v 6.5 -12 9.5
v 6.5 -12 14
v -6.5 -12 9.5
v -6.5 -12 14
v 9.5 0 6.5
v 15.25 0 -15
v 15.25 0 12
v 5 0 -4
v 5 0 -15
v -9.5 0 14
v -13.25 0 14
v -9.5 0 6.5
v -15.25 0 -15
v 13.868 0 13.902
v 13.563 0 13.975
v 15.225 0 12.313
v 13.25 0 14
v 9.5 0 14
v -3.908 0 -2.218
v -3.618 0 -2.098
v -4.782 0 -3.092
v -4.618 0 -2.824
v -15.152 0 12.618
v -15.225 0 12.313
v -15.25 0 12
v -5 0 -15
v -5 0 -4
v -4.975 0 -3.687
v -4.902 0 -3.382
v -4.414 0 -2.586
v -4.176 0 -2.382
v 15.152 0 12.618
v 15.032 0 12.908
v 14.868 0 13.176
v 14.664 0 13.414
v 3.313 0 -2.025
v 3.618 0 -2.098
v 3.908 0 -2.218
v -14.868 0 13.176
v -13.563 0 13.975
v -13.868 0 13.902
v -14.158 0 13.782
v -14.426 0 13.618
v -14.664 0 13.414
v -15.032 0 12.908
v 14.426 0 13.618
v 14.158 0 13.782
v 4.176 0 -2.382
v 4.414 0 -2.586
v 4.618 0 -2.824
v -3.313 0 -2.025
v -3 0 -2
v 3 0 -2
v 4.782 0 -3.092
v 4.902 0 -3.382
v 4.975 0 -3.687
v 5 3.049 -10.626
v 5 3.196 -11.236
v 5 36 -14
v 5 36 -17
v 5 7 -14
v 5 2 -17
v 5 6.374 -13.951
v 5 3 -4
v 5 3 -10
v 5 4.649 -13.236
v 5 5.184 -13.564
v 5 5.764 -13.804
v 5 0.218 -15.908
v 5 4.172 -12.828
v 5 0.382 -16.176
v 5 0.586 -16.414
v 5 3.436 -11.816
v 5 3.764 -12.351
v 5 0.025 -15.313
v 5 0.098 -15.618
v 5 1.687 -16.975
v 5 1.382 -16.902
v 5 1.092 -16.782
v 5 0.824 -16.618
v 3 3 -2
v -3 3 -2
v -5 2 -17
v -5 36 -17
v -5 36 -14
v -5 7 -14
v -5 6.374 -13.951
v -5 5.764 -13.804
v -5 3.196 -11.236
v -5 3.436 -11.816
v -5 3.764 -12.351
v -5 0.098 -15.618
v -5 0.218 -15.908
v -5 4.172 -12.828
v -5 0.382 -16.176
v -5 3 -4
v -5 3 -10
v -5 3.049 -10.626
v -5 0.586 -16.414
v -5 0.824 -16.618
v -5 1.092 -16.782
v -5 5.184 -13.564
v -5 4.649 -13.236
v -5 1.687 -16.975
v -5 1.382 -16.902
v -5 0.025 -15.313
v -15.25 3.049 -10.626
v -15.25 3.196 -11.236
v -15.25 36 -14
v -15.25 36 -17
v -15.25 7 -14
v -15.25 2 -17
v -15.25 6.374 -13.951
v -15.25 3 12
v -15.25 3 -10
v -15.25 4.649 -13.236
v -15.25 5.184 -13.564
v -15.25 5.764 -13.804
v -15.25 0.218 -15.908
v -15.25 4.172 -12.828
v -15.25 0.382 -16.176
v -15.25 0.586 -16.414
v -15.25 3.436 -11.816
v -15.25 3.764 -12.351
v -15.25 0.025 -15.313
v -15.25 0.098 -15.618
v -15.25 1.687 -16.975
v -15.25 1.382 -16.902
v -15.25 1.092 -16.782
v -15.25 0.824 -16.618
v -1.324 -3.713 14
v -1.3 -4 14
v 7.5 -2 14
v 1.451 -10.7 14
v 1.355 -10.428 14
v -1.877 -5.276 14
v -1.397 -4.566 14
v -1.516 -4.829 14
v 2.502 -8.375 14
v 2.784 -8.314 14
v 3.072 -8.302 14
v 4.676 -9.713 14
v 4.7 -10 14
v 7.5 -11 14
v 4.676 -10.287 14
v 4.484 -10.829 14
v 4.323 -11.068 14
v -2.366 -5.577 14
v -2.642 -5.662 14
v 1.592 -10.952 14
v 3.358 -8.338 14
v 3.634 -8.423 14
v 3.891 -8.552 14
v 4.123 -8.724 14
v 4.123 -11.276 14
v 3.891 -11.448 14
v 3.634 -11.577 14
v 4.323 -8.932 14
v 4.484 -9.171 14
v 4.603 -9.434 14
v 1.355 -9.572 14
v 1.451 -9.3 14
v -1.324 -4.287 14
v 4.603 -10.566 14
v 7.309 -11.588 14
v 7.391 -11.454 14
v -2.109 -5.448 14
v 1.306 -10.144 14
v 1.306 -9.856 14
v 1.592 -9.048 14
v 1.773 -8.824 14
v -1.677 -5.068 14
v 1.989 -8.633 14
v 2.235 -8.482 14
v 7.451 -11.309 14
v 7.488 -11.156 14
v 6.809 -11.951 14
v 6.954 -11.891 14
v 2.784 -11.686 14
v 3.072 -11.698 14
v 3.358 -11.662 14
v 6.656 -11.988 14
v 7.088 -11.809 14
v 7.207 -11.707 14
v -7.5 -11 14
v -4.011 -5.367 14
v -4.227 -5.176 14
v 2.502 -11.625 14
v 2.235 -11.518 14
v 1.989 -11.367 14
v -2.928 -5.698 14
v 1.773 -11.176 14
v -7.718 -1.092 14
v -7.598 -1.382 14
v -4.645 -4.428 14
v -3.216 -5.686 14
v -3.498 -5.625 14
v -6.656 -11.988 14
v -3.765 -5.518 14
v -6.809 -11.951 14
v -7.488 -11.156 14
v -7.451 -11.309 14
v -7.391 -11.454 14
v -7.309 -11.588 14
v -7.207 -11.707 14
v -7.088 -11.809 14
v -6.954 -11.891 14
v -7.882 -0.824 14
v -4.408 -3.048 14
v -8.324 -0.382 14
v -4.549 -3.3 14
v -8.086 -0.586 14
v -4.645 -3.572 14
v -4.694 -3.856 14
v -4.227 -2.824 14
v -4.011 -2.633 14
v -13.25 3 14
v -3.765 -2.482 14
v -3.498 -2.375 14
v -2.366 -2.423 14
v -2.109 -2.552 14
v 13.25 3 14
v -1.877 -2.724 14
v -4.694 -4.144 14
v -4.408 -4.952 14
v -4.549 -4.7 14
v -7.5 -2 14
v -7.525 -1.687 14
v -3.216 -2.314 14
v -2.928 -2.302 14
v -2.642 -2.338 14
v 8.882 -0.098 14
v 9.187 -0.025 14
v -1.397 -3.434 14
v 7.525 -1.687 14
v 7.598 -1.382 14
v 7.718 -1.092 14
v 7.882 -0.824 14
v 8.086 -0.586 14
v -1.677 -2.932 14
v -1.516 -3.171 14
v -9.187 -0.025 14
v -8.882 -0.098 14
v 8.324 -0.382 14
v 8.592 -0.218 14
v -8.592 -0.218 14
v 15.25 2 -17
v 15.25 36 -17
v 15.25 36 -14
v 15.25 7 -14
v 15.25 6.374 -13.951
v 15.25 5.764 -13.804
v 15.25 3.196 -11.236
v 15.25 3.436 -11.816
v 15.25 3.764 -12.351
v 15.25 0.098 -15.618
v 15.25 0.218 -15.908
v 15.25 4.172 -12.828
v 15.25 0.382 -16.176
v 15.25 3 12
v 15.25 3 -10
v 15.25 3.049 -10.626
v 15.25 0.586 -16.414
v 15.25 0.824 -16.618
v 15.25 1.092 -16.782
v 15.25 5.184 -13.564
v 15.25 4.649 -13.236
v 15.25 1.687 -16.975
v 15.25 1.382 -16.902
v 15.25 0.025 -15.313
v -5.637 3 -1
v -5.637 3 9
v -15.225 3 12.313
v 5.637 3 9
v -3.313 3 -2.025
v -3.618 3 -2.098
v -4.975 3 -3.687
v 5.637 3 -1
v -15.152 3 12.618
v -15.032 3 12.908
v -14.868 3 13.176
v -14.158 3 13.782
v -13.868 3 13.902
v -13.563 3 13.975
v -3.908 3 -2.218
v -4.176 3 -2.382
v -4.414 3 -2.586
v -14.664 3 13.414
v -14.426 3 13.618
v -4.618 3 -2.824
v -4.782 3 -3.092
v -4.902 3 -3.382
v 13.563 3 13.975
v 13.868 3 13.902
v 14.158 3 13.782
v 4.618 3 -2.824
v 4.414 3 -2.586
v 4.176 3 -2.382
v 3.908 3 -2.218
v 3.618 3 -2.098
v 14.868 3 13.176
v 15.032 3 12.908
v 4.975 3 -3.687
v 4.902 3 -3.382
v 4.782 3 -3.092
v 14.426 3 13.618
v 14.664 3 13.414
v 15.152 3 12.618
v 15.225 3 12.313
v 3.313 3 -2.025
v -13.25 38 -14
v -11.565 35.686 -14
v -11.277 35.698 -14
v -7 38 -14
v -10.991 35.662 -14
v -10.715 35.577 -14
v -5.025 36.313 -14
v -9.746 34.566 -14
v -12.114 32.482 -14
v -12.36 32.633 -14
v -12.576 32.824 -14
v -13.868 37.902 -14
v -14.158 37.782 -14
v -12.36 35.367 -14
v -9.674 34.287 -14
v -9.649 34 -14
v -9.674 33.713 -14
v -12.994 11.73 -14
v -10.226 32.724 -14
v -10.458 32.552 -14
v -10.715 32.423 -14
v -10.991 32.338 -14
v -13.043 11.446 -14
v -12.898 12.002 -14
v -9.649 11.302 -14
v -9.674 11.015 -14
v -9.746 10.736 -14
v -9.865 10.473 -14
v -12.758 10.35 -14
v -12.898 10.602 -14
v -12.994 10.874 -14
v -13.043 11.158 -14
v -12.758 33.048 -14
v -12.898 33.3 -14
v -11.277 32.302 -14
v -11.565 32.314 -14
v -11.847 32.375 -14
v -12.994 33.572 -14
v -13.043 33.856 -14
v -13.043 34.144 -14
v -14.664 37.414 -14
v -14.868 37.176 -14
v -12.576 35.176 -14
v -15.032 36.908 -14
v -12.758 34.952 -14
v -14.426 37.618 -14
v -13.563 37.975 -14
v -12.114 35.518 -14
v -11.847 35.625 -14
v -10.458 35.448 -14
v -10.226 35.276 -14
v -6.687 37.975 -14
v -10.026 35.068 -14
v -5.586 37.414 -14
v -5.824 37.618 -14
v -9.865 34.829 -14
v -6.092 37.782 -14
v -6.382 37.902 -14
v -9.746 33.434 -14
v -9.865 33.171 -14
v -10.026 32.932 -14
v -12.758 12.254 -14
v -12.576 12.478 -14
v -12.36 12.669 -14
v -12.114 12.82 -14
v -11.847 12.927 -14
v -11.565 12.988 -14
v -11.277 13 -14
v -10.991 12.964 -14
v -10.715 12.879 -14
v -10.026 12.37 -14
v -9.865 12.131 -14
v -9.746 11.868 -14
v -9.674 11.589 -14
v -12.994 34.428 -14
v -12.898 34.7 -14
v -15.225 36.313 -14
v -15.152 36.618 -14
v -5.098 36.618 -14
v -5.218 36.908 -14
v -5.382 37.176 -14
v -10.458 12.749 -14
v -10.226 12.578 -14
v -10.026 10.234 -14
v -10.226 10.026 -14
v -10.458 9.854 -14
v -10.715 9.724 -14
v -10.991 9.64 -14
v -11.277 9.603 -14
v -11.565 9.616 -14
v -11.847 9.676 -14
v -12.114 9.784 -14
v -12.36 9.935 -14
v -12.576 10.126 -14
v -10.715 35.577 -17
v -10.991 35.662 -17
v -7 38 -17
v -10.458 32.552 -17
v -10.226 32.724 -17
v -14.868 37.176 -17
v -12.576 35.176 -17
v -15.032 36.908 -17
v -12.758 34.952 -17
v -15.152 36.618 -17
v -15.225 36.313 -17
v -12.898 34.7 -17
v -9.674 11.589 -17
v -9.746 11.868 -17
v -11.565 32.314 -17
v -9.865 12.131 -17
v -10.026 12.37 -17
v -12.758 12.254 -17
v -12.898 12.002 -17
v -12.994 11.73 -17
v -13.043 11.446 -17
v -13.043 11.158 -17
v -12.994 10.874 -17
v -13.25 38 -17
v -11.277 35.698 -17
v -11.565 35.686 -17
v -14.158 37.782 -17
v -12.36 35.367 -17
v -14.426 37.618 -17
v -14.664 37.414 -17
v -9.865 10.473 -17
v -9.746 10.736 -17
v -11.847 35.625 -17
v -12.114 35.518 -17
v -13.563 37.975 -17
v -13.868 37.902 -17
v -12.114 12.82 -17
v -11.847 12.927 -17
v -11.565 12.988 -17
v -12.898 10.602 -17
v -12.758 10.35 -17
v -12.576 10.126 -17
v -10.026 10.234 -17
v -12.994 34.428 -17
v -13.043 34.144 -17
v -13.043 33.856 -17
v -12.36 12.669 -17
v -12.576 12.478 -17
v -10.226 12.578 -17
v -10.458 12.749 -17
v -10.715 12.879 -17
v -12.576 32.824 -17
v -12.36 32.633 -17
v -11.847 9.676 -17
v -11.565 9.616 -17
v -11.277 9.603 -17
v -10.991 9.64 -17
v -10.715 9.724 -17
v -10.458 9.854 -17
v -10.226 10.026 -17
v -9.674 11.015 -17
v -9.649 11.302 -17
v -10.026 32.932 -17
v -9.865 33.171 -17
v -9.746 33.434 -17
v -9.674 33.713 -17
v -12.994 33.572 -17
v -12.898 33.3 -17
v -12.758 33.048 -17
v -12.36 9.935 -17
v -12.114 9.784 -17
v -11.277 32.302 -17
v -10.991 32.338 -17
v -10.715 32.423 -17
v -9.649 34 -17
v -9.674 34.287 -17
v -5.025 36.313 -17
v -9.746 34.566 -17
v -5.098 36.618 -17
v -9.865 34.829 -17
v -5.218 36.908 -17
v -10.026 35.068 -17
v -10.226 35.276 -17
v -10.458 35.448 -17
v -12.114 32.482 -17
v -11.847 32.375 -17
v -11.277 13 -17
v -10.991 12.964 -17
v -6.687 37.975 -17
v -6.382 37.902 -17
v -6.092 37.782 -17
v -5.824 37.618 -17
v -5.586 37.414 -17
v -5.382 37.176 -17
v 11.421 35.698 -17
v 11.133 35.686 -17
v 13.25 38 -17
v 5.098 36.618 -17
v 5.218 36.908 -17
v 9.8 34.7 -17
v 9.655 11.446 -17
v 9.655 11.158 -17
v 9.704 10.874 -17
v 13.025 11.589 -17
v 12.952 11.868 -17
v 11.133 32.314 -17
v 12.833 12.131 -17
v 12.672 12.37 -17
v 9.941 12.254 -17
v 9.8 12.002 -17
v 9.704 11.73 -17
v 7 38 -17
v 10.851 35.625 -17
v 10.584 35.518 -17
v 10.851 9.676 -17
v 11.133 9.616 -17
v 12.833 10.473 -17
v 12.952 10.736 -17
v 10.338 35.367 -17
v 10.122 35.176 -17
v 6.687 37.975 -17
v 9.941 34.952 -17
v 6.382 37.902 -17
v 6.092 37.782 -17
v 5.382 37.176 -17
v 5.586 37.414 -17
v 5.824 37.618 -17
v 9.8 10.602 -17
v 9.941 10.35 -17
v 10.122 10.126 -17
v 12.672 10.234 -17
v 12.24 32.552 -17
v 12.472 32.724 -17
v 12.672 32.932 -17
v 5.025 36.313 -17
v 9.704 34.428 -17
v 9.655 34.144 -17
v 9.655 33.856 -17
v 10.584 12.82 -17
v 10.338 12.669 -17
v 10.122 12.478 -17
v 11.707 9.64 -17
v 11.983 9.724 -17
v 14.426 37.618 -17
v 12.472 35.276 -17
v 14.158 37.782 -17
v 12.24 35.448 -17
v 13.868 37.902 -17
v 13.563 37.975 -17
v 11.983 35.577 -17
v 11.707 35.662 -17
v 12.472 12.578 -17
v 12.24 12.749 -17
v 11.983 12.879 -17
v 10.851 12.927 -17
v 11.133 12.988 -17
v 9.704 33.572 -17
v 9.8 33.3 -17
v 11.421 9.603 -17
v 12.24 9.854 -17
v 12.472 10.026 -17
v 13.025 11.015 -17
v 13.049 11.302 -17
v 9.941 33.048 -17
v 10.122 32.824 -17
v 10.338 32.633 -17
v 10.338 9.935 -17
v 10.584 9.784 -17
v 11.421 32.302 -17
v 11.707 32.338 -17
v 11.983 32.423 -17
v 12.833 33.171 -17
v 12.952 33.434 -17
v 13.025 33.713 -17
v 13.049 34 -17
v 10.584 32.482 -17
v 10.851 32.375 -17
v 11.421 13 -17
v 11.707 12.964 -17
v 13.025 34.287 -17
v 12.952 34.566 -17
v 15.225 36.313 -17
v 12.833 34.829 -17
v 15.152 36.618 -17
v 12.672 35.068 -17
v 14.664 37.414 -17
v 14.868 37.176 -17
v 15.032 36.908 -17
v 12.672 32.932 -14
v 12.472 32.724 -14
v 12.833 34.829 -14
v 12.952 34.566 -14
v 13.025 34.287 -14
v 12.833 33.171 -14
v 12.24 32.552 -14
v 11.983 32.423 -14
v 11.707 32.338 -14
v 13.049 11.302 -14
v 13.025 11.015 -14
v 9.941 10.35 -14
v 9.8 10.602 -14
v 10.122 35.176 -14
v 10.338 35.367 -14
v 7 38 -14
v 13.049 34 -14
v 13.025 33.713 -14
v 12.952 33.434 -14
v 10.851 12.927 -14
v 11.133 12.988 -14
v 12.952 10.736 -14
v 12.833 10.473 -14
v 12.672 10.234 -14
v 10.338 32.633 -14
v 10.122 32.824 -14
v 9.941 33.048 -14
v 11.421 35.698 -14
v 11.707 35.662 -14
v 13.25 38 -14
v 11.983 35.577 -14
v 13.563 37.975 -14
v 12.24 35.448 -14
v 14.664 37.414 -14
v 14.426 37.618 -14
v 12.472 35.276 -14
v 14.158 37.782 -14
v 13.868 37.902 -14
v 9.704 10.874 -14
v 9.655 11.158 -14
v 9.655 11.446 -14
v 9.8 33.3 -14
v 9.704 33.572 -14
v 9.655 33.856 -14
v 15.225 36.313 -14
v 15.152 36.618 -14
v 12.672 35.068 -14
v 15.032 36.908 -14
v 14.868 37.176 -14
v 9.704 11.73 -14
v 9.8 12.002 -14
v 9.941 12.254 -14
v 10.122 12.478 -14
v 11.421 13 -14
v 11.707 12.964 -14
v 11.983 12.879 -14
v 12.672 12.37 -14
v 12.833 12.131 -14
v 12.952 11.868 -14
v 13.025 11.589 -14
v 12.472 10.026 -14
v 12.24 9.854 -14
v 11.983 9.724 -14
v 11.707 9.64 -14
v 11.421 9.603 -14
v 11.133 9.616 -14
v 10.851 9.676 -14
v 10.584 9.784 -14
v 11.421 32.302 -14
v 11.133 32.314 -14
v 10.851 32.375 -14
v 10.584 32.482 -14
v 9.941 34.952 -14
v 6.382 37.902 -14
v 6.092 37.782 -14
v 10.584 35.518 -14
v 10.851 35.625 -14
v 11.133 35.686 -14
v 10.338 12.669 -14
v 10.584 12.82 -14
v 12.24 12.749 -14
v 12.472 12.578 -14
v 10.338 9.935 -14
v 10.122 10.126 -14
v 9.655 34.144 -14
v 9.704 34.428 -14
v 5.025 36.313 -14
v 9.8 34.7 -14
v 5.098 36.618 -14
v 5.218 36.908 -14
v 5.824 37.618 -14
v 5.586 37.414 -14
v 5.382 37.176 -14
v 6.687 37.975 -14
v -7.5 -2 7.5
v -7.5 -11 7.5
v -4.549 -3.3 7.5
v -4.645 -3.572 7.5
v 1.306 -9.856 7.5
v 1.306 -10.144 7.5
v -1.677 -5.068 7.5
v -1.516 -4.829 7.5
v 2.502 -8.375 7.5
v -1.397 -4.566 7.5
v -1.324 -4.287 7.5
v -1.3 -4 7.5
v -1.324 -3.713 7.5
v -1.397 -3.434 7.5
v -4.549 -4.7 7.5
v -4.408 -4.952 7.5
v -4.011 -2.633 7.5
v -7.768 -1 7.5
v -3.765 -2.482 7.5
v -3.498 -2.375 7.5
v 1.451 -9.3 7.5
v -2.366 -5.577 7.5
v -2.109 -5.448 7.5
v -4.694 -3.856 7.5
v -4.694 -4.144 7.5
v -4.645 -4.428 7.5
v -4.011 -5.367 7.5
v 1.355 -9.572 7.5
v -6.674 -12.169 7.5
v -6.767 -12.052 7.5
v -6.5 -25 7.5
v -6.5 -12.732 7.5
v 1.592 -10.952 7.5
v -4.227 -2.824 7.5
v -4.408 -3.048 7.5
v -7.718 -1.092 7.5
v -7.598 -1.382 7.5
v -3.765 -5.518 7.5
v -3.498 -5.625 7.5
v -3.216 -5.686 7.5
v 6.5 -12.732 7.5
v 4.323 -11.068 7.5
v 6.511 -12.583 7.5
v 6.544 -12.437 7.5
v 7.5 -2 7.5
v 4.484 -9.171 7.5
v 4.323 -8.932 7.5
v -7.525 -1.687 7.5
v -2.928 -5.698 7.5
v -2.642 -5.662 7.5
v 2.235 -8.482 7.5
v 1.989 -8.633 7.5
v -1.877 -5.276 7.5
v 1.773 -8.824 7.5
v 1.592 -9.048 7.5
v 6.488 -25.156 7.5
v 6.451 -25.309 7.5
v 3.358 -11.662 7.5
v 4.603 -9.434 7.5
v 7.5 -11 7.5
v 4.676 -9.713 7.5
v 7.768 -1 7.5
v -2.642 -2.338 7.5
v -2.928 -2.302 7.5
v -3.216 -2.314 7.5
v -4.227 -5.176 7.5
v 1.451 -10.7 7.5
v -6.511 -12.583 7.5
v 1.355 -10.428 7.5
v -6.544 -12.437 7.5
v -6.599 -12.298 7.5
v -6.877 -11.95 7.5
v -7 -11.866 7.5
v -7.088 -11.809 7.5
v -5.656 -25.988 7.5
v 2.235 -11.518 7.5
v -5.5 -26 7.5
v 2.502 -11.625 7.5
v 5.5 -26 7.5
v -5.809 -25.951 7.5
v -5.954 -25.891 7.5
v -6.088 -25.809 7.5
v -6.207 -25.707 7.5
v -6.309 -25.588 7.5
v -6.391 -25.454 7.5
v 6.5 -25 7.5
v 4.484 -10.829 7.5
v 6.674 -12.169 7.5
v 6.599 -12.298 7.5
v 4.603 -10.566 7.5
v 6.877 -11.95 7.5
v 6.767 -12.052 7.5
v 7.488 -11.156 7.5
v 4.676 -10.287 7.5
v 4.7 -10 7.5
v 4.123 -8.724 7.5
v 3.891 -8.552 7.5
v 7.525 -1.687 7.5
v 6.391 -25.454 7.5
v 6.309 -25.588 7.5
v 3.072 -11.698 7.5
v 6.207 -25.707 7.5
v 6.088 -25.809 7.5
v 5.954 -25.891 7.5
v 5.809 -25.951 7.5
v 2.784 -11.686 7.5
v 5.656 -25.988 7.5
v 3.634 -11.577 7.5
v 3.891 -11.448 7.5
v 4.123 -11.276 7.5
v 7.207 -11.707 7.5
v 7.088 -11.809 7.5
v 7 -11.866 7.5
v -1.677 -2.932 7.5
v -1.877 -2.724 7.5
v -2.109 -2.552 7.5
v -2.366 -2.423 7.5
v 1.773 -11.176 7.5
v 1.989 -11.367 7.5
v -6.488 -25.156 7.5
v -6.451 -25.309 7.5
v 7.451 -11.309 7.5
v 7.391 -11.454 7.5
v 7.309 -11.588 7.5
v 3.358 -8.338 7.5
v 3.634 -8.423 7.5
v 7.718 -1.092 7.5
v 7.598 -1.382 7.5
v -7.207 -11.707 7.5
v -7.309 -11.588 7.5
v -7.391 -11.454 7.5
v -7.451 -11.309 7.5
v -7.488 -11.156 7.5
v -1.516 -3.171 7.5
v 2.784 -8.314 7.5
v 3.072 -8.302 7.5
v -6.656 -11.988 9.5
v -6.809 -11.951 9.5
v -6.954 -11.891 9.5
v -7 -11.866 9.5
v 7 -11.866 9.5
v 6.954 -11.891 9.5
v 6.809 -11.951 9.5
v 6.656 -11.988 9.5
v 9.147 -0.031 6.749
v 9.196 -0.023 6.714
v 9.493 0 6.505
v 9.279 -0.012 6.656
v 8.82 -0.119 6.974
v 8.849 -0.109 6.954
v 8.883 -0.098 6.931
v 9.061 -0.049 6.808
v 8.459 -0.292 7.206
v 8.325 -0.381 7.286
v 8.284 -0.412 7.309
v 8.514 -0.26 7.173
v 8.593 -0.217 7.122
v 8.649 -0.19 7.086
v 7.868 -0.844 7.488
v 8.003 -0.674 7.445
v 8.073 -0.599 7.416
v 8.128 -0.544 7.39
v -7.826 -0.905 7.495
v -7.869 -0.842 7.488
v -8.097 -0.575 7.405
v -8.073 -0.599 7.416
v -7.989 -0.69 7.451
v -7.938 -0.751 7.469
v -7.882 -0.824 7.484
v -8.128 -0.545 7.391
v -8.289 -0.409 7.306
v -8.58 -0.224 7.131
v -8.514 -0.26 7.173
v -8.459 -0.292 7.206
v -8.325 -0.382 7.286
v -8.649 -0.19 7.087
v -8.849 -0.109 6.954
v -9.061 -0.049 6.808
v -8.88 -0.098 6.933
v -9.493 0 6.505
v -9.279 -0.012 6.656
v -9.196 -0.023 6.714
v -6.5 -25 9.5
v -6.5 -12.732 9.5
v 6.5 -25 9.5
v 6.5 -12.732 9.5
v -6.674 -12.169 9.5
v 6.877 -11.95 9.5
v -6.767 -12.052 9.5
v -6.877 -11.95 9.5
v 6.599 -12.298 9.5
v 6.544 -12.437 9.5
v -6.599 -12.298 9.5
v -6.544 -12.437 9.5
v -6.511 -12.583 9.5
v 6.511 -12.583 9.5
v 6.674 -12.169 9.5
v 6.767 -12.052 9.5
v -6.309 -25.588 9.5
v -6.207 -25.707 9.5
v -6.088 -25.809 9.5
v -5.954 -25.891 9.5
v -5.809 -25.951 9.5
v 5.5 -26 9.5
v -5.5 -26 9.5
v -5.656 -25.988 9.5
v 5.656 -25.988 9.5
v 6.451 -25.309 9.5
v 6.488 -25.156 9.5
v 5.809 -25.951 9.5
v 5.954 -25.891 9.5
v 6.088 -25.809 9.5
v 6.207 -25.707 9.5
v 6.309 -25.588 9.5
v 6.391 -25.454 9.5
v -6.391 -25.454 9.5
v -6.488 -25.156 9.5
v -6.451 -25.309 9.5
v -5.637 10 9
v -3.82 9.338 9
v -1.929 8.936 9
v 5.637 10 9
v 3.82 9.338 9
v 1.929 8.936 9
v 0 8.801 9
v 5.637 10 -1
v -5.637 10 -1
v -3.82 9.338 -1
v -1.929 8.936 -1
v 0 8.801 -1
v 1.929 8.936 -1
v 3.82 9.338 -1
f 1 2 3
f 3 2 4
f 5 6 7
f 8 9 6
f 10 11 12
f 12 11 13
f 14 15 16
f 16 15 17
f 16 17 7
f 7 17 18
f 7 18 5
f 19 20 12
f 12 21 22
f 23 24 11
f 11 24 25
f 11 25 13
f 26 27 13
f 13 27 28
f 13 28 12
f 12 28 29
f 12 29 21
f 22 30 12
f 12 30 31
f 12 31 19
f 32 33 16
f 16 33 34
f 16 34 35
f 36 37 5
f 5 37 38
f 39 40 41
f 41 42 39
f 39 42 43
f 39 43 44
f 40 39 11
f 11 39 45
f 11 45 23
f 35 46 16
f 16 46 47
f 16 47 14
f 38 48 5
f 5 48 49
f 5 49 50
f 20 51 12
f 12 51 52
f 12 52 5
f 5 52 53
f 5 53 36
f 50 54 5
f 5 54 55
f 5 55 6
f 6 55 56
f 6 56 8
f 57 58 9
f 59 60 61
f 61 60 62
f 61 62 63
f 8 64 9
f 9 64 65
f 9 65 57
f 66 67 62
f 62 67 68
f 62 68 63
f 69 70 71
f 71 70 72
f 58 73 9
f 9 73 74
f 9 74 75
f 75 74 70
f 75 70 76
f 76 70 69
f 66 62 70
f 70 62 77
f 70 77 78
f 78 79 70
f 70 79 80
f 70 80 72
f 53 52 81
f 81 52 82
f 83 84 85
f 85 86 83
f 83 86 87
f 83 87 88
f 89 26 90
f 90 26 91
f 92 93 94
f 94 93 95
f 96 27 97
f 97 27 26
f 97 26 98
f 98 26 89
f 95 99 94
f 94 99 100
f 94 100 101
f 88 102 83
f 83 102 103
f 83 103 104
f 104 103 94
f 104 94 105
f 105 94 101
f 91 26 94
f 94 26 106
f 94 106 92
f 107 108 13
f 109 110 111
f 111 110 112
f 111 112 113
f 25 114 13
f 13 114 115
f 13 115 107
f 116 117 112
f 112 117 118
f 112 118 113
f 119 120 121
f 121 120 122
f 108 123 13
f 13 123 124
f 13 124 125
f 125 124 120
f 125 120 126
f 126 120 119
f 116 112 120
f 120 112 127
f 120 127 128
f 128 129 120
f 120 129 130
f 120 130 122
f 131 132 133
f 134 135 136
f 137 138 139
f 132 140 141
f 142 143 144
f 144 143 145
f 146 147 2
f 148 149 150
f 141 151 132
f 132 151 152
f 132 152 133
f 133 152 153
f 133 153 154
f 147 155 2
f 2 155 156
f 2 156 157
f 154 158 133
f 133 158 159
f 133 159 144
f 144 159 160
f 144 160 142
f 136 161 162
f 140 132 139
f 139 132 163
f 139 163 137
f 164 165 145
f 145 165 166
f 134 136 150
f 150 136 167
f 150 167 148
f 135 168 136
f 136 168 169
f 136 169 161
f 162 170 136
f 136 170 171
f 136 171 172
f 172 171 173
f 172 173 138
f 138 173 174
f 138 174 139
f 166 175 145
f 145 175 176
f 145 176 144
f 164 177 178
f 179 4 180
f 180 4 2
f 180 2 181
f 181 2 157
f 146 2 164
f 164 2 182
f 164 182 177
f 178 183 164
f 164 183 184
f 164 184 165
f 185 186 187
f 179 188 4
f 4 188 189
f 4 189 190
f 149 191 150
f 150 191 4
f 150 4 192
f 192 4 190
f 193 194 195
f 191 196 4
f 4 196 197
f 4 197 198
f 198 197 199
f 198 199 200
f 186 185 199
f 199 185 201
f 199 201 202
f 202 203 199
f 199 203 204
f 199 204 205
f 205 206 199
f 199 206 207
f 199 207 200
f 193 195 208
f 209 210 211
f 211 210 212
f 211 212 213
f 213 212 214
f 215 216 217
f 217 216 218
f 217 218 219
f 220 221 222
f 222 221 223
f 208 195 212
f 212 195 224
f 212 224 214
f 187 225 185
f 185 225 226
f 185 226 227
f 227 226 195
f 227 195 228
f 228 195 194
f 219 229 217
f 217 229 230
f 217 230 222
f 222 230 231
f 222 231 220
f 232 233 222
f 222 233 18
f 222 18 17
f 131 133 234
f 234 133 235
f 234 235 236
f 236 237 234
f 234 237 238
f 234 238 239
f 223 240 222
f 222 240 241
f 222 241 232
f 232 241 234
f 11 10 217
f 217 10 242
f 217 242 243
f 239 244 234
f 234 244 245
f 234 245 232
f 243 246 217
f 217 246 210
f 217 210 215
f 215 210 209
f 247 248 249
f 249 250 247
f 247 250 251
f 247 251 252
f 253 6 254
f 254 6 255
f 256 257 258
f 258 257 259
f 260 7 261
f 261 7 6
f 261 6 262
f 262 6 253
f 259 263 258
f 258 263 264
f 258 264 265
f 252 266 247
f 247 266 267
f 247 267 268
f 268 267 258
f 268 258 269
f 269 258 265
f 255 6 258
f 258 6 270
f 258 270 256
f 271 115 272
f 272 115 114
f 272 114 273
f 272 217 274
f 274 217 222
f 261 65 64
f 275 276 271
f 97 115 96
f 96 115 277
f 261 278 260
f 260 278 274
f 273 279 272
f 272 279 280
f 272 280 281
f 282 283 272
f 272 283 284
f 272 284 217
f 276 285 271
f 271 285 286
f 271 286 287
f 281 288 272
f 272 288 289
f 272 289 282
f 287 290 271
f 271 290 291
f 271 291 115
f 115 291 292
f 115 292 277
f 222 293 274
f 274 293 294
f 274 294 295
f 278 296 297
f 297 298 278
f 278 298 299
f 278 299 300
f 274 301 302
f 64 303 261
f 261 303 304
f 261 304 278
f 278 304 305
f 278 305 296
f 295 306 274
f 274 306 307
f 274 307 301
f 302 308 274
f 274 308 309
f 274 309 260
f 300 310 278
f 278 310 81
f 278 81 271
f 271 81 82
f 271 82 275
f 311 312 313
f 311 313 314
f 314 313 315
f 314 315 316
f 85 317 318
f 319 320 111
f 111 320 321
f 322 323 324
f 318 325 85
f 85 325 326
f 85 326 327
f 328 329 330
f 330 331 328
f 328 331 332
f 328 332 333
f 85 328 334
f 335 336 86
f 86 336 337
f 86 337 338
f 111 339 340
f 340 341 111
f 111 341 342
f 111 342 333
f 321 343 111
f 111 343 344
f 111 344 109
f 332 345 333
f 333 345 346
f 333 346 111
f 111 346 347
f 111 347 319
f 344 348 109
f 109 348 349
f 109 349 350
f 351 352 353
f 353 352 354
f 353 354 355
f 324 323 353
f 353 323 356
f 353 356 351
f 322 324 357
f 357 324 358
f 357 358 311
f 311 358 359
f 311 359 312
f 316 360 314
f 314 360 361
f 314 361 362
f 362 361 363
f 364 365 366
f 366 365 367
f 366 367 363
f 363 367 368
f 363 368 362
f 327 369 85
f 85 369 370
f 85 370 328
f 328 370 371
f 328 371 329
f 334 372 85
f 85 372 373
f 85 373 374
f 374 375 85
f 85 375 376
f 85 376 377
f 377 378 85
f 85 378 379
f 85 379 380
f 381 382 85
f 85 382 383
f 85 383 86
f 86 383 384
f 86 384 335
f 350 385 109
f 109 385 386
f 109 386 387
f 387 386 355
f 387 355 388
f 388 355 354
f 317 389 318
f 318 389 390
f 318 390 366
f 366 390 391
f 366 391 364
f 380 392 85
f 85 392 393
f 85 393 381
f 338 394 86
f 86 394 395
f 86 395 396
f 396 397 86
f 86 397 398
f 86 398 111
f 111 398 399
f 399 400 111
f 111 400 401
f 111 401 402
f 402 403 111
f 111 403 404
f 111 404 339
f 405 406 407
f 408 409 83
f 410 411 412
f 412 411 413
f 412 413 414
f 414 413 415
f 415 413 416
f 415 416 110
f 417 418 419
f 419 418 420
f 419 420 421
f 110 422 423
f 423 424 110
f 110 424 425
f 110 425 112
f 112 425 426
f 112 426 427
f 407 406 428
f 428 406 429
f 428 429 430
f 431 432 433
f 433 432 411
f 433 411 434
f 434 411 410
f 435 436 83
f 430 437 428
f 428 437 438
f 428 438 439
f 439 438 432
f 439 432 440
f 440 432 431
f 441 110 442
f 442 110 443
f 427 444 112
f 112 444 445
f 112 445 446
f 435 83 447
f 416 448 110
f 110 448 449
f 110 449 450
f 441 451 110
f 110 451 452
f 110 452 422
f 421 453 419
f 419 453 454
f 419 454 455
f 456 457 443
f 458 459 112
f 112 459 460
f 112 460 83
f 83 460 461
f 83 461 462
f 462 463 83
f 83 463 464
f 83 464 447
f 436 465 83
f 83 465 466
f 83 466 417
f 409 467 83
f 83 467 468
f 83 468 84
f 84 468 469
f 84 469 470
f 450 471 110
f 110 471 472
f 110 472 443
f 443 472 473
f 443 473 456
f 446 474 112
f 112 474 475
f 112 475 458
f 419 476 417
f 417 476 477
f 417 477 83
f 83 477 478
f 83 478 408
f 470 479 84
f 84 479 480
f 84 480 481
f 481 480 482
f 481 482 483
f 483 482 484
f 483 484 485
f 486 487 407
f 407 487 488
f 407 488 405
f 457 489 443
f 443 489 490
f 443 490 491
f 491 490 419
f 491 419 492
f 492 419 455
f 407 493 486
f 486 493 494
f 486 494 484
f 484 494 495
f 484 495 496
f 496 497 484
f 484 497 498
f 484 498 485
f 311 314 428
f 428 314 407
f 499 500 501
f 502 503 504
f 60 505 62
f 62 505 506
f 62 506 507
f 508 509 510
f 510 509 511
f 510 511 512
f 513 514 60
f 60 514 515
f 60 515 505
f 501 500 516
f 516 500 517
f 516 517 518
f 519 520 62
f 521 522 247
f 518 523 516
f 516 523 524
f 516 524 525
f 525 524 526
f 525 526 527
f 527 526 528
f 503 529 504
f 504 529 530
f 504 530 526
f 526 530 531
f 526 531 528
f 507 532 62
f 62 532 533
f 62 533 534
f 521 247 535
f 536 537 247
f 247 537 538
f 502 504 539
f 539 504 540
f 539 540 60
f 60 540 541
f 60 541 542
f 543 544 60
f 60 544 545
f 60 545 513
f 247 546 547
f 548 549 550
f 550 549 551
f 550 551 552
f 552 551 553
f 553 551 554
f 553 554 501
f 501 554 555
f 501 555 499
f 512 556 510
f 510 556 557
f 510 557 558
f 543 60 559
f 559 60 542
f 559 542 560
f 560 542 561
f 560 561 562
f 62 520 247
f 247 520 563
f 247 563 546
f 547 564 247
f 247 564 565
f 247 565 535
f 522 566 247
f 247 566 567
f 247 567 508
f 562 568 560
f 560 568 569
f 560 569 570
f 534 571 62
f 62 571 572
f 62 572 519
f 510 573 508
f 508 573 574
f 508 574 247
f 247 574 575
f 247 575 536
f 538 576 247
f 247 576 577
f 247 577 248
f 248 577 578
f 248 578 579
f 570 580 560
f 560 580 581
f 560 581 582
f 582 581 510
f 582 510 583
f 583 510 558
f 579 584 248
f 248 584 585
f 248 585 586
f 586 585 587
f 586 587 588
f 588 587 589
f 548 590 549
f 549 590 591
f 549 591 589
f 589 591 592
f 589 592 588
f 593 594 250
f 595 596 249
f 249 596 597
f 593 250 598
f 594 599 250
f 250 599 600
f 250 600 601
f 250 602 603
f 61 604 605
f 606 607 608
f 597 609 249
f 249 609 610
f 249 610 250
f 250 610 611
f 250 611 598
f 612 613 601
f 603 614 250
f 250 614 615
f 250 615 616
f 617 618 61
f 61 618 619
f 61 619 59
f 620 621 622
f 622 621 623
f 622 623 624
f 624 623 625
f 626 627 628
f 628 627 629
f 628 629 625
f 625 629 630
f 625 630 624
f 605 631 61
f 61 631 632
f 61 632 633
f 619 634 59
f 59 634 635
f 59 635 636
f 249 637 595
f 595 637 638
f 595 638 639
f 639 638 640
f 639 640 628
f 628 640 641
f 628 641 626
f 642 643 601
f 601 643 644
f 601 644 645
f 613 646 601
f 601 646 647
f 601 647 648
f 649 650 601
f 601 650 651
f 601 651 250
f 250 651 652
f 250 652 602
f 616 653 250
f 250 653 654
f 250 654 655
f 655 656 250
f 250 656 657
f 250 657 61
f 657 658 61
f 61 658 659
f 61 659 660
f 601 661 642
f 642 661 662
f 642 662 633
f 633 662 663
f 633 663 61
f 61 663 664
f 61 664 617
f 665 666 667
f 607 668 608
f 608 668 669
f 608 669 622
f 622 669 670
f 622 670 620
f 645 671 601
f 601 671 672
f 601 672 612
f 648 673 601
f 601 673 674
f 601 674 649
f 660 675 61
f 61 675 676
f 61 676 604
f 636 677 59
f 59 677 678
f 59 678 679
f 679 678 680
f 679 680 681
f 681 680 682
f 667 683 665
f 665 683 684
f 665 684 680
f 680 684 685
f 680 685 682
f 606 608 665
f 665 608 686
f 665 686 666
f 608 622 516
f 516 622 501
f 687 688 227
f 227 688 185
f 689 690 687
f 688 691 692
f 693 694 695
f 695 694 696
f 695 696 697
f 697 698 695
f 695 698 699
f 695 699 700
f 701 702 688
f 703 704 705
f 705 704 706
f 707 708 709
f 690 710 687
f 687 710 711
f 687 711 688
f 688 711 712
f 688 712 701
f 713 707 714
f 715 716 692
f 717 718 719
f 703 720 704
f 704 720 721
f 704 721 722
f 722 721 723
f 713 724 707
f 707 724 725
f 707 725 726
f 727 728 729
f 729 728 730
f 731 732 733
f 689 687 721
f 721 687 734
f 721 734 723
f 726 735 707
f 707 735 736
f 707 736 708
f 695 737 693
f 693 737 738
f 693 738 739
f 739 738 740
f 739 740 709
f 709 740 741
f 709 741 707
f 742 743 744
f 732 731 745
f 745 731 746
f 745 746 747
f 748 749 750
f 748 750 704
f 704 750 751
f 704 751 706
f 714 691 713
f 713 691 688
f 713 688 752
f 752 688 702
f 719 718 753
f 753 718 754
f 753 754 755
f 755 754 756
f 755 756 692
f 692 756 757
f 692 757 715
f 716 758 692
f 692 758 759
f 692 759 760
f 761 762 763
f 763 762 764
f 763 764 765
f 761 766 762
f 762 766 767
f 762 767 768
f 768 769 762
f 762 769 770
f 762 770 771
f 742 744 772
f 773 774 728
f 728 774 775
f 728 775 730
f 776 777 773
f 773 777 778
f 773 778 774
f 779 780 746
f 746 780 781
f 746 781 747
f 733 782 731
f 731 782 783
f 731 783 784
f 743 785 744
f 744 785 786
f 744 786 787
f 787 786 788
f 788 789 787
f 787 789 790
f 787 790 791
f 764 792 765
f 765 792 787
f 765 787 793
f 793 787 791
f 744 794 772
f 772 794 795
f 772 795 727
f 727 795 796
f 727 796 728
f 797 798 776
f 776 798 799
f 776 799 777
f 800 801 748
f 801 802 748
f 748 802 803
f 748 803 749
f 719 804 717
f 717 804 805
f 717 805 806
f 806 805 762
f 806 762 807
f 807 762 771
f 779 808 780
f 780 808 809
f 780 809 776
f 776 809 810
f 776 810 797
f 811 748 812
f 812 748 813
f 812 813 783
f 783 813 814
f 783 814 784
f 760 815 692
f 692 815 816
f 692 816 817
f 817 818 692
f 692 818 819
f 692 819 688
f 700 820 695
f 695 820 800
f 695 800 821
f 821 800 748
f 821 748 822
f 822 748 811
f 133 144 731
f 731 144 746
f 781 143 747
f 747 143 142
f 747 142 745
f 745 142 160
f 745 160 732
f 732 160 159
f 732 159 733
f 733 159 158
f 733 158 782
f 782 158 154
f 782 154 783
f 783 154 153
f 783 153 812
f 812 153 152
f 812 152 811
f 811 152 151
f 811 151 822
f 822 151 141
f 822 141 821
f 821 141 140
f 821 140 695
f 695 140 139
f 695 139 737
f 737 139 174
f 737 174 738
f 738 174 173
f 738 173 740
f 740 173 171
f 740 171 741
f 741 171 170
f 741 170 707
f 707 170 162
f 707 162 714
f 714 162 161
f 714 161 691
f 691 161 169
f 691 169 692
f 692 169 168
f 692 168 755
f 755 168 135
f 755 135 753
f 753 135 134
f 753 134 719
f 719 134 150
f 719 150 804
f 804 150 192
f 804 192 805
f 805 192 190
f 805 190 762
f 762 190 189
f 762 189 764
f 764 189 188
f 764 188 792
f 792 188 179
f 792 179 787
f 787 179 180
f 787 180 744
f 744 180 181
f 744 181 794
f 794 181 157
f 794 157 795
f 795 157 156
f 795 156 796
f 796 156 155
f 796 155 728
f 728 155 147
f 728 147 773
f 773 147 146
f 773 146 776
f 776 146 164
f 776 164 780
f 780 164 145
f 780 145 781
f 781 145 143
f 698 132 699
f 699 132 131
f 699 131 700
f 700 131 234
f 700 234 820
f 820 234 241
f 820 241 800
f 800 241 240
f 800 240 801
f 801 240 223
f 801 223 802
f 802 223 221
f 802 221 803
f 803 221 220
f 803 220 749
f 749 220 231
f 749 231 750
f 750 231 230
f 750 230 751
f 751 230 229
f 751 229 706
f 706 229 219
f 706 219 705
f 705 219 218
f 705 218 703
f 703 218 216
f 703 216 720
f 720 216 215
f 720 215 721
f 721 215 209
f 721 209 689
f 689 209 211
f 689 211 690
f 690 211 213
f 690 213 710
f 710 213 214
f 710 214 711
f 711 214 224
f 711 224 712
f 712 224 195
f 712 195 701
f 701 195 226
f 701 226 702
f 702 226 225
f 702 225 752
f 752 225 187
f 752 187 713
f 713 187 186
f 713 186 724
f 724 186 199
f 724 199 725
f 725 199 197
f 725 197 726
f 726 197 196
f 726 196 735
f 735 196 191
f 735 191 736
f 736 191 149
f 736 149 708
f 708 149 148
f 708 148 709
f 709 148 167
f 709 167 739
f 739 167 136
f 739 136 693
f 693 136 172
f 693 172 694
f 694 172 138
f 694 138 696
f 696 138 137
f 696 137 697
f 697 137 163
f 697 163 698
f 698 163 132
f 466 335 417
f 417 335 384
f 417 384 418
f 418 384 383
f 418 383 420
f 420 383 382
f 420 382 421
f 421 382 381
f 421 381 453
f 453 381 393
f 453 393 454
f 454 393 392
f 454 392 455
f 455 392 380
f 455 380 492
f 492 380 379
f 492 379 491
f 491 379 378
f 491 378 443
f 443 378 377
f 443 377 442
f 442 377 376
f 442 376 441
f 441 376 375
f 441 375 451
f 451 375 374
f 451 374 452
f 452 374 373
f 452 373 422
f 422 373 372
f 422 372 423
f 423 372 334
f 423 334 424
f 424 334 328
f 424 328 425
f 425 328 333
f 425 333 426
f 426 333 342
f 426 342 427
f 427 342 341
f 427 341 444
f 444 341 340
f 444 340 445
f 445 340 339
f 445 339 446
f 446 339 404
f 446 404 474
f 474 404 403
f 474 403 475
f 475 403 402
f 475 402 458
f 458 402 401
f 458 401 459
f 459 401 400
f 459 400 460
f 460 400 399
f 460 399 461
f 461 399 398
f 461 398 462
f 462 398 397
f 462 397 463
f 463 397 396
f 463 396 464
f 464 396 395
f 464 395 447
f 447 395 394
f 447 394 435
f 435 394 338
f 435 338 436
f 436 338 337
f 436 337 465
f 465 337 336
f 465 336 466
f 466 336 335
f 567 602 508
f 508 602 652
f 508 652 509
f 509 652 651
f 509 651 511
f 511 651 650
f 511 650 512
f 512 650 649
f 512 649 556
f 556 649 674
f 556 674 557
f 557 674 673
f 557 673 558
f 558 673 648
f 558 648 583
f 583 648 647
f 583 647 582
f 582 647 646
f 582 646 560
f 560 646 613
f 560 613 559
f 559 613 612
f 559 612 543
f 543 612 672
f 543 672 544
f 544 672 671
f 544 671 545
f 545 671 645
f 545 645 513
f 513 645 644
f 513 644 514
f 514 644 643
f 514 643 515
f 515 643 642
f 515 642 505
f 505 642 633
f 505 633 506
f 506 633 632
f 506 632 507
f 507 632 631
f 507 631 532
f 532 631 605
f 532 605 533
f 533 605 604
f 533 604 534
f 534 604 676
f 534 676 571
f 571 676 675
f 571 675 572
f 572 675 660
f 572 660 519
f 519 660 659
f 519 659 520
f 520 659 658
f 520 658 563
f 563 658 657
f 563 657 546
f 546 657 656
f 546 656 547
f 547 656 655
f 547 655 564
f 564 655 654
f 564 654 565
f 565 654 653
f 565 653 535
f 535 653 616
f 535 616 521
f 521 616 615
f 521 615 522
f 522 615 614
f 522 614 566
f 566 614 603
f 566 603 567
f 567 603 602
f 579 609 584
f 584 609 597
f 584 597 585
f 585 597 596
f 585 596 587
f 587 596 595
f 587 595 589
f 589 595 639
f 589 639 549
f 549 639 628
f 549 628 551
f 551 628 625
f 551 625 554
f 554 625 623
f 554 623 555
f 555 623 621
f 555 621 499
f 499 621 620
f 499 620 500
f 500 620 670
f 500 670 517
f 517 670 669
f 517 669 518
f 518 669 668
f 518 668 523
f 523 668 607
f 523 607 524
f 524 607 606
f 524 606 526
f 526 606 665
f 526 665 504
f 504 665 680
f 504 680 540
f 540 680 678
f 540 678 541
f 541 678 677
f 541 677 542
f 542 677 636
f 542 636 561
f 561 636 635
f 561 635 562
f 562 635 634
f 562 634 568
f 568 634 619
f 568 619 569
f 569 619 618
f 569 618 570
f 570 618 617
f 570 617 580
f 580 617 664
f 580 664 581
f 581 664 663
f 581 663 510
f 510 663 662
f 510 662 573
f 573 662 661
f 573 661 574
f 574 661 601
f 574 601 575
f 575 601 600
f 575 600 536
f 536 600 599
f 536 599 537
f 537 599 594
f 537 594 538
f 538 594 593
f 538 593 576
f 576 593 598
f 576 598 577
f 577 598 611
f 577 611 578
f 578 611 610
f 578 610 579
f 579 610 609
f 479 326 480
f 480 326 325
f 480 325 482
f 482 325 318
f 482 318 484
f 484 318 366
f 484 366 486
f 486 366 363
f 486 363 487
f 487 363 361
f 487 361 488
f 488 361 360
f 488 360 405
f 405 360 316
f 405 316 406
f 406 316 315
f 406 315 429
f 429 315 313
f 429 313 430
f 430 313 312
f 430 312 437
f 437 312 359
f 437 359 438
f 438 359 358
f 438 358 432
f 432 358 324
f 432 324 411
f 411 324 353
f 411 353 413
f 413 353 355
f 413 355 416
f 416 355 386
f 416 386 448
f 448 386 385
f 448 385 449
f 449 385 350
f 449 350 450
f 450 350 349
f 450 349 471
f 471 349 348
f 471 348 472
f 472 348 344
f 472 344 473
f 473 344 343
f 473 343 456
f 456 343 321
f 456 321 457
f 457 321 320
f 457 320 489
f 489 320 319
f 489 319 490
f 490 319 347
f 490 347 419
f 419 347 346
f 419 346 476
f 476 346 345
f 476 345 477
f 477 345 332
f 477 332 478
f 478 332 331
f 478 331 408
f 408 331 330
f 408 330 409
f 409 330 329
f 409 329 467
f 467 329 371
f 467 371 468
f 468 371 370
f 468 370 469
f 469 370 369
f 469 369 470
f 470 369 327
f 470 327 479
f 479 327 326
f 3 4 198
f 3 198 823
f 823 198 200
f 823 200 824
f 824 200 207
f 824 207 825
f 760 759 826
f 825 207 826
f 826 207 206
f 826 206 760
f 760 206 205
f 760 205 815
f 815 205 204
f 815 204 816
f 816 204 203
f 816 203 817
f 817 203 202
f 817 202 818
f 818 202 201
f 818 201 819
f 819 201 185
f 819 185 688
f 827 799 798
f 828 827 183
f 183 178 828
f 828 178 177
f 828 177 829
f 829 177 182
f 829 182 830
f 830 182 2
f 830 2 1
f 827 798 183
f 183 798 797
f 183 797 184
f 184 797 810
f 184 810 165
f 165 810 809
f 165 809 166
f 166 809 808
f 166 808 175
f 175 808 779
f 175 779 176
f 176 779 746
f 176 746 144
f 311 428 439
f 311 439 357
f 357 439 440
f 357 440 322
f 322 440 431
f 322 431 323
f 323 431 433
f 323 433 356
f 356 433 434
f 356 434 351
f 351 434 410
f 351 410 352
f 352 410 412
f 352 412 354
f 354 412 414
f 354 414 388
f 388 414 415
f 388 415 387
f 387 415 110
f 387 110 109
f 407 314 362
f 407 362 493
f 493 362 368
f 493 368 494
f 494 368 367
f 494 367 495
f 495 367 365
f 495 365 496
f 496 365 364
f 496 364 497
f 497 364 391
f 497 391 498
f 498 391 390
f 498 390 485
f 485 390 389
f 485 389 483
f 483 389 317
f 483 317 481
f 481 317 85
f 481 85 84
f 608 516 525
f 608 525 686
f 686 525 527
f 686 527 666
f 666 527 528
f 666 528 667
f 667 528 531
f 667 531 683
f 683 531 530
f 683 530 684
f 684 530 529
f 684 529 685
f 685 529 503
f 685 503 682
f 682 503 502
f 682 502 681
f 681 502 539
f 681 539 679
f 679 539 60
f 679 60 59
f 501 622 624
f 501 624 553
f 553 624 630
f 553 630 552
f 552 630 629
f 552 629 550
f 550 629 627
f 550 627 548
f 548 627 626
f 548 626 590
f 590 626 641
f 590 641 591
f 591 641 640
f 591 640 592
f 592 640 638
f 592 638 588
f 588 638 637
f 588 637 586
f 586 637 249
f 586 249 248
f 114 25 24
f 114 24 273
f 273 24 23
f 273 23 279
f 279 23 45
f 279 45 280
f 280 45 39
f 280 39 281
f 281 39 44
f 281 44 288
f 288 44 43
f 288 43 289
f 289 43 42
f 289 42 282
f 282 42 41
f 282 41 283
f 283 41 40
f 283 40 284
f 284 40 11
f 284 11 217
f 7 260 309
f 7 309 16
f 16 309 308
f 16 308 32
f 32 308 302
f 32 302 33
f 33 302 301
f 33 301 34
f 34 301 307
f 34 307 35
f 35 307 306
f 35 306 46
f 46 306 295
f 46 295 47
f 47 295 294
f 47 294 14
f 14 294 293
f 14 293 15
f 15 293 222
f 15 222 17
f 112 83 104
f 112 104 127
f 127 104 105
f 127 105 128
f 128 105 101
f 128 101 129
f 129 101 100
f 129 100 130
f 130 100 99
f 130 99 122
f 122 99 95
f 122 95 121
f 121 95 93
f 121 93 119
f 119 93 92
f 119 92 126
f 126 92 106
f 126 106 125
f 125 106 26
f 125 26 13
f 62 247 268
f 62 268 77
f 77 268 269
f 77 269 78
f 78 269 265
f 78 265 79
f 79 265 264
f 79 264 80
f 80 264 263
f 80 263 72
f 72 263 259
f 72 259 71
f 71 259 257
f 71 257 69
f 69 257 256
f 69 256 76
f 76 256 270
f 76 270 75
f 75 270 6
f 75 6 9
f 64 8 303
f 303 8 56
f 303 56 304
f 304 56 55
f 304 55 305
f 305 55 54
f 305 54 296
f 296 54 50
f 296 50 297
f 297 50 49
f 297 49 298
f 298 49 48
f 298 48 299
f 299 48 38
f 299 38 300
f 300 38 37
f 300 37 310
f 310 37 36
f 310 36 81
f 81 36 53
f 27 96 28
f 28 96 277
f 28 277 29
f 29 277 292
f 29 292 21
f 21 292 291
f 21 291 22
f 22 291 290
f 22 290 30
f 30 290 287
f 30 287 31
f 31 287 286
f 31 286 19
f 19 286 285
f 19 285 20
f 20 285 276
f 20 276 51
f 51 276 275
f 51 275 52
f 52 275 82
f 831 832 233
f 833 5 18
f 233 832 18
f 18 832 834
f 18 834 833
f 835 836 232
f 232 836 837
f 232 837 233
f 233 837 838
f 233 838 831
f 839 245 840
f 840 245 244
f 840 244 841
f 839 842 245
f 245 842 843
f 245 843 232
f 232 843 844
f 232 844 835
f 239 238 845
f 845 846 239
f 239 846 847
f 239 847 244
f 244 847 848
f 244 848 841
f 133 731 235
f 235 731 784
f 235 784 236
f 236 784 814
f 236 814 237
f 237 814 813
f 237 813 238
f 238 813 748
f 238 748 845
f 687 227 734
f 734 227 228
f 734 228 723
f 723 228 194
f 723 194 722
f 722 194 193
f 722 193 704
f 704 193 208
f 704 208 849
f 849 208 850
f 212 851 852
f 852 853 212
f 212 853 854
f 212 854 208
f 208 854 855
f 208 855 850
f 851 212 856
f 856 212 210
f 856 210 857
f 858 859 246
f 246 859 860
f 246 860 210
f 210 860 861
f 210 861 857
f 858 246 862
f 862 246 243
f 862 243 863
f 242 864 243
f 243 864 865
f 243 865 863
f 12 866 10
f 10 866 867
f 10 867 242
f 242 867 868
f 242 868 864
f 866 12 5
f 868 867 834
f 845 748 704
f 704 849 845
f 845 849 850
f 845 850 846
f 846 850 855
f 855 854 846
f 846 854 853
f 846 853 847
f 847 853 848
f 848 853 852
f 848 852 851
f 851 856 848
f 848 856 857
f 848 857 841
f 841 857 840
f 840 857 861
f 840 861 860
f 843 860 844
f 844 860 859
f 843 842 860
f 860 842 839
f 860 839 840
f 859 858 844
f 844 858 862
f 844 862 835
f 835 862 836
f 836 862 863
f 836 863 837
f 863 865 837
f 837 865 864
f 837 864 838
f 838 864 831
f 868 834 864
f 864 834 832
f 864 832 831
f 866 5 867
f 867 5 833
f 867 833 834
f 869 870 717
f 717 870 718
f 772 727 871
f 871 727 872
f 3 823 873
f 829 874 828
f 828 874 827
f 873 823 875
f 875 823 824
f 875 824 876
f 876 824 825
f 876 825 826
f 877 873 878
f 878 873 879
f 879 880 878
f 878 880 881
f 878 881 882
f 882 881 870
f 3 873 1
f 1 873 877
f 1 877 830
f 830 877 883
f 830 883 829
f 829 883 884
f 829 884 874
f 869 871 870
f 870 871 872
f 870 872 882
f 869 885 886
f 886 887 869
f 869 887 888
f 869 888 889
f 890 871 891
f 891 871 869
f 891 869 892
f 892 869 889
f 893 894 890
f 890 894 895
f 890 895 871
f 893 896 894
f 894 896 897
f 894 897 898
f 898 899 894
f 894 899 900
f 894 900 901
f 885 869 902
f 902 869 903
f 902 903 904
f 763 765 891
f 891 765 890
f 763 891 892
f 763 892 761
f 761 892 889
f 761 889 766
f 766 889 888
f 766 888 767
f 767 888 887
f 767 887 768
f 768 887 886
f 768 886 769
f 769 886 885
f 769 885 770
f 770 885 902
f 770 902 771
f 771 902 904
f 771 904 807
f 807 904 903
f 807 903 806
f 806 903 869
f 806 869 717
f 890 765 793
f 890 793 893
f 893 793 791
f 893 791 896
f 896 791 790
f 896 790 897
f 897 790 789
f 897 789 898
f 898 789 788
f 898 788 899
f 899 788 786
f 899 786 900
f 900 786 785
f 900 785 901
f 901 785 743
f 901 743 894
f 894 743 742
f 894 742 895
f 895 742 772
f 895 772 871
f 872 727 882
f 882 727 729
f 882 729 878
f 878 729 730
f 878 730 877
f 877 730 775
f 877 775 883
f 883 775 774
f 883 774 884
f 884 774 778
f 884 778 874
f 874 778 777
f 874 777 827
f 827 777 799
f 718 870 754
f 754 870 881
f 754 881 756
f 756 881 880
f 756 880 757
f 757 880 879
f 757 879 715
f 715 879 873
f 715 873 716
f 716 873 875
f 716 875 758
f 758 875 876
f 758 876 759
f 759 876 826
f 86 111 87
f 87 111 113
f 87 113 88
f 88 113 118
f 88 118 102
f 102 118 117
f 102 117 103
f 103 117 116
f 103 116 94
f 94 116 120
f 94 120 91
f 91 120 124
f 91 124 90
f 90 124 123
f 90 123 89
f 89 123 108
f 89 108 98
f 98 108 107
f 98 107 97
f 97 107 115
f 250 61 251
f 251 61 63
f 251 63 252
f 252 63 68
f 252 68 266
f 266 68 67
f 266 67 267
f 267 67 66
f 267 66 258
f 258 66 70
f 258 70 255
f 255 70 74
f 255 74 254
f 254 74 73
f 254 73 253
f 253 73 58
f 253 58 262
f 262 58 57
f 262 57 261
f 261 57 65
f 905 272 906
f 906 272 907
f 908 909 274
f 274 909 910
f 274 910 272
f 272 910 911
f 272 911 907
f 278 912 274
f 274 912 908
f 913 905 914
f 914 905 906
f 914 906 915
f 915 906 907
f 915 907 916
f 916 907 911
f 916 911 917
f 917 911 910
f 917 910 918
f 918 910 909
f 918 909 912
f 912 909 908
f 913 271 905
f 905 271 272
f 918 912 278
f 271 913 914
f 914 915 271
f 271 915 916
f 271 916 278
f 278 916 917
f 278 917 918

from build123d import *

# Parameters (mm, degrees)
BOSS_EXTRUDE1_DEPTH      = 3
BOSS_EXTRUDE2_DEPTH      = 35
BOSS_EXTRUDE2_DEPTH_BACK = 3
SKETCH3_W                = 10.25
SKETCH3_H                = 3
SKETCH4_W                = 15
SKETCH4_H                = 6.5
BOSS_EXTRUDE3_DEPTH      = 12
M3_CLEARANCE_HOLE1_D     = 3.4
M3_CLEARANCE_HOLE2_D     = 3.4
FILLET1_R                = 1
FILLET2_R                = 2
FILLET3_R                = 1
SKETCH11_W               = 13
SKETCH11_H               = 2
BOSS_EXTRUDE4_DEPTH      = 14
FILLET4_R                = 1
FILLET5_R                = 4
BOSS_EXTRUDE5_START      = -5
BOSS_EXTRUDE5_DEPTH      = 10


with BuildPart() as part:
    # Sketch2 → Boss-Extrude1 (new body)
    with BuildSketch(Plane(origin=(0, 0, 0), x_dir=(1, 0, 0), z_dir=(0, 1, 0))):
        Polygon((-15.25, -14), (15.25, -14), (15.25, 14), (5, 14), (5, 2), (-5, 2), (-5, 14), (-15.25, 14), align=None)
    extrude(amount=BOSS_EXTRUDE1_DEPTH)

    # Sketch3 → Boss-Extrude2 (add, two sides: drawn at the far end of the back side and taken through both)
    with BuildSketch(Plane(origin=(0, 3, 0), x_dir=(1, 0, 0), z_dir=(0, 1, 0)).offset(-BOSS_EXTRUDE2_DEPTH_BACK)):
        with Locations((-10.125, 15.5)):
            Rectangle(SKETCH3_W, SKETCH3_H)
        with Locations((10.125, 15.5)):
            Rectangle(SKETCH3_W, SKETCH3_H)
    extrude(amount=BOSS_EXTRUDE2_DEPTH + BOSS_EXTRUDE2_DEPTH_BACK)

    # Sketch4 → Boss-Extrude3 (add)
    with BuildSketch(Plane.XZ):
        with Locations((0, 10.75)):
            Rectangle(SKETCH4_W, SKETCH4_H)
    extrude(amount=BOSS_EXTRUDE3_DEPTH)

    # M3 Clearance Hole1 (through all)
    with Locations(Plane.XY.offset(14)):
        with Locations((-3, -4), (3, -10)):
            Hole(M3_CLEARANCE_HOLE1_D / 2)

    # M3 Clearance Hole2 (through all)
    with Locations(Plane.XY.offset(-14)):
        with Locations((-11.34906384, 34), (11.34906384, 34), (11.34906384, 11.30187232), (-11.34906384, 11.30187232)):
            Hole(M3_CLEARANCE_HOLE2_D / 2)

    # Fillet1
    fillet1_edges = [part.edges().sort_by_distance(p)[0] for p in [
        (-7.5, -12, 10.75),
        (7.5, -12, 10.75),
    ]]
    fillet(fillet1_edges, radius=FILLET1_R)

    # Fillet2
    fillet2_edges = [part.edges().sort_by_distance(p)[0] for p in [
        (15.25, 1.5, 14),
        (-15.25, 1.5, 14),
        (-5, 1.5, -2),
        (5, 1.5, -2),
        (-15.25, 38, -15.5),
        (-5, 38, -15.5),
        (-10.125, 0, -17),
        (15.25, 38, -15.5),
        (5, 38, -15.5),
        (10.125, 0, -17),
        (-7.5, 0, 10.75),
        (7.5, 0, 10.75),
    ]]
    fillet(fillet2_edges, radius=FILLET2_R)

    # Fillet3
    fillet3_edges = [part.edges().sort_by_distance(p)[0] for p in [
        (0, 0, 7.5),
    ]]
    fillet(fillet3_edges, radius=FILLET3_R - 0.0001)  # a hair under: the kernel refuses the full size

    # Sketch11 → Boss-Extrude4 (add)
    with BuildSketch(Plane.XZ.offset(12)):
        with Locations((0, 8.5)):
            Rectangle(SKETCH11_W, SKETCH11_H)
    extrude(amount=BOSS_EXTRUDE4_DEPTH)

    # Fillet4
    fillet4_edges = [part.edges().sort_by_distance(p)[0] for p in [
        (-6.5, -12, 8.5),
        (-6.5, -26, 8.5),
        (6.5, -26, 8.5),
        (6.5, -12, 8.5),
    ]]
    fillet(fillet4_edges, radius=FILLET4_R)

    # Fillet5
    fillet5_edges = [part.edges().sort_by_distance(p)[0] for p in [
        (-10.125, 3, -14),
        (10.125, 3, -14),
    ]]
    fillet(fillet5_edges, radius=FILLET5_R)

    # Sketch13 → Boss-Extrude5 (add)
    with BuildSketch(Plane.XY.offset(14).offset(BOSS_EXTRUDE5_START)):
        with BuildLine():
            Line((-5.637048368, 10), (-5.637048368, 3))
            Line((-5.637048368, 3), (5.637048368, 3))
            Line((5.637048368, 3), (5.637048368, 10))
            ThreePointArc((5.637048368, 10), (0, 8.800936159), (-5.637048368, 10))
        make_face()
    extrude(amount=-BOSS_EXTRUDE5_DEPTH)


solid = part.part
